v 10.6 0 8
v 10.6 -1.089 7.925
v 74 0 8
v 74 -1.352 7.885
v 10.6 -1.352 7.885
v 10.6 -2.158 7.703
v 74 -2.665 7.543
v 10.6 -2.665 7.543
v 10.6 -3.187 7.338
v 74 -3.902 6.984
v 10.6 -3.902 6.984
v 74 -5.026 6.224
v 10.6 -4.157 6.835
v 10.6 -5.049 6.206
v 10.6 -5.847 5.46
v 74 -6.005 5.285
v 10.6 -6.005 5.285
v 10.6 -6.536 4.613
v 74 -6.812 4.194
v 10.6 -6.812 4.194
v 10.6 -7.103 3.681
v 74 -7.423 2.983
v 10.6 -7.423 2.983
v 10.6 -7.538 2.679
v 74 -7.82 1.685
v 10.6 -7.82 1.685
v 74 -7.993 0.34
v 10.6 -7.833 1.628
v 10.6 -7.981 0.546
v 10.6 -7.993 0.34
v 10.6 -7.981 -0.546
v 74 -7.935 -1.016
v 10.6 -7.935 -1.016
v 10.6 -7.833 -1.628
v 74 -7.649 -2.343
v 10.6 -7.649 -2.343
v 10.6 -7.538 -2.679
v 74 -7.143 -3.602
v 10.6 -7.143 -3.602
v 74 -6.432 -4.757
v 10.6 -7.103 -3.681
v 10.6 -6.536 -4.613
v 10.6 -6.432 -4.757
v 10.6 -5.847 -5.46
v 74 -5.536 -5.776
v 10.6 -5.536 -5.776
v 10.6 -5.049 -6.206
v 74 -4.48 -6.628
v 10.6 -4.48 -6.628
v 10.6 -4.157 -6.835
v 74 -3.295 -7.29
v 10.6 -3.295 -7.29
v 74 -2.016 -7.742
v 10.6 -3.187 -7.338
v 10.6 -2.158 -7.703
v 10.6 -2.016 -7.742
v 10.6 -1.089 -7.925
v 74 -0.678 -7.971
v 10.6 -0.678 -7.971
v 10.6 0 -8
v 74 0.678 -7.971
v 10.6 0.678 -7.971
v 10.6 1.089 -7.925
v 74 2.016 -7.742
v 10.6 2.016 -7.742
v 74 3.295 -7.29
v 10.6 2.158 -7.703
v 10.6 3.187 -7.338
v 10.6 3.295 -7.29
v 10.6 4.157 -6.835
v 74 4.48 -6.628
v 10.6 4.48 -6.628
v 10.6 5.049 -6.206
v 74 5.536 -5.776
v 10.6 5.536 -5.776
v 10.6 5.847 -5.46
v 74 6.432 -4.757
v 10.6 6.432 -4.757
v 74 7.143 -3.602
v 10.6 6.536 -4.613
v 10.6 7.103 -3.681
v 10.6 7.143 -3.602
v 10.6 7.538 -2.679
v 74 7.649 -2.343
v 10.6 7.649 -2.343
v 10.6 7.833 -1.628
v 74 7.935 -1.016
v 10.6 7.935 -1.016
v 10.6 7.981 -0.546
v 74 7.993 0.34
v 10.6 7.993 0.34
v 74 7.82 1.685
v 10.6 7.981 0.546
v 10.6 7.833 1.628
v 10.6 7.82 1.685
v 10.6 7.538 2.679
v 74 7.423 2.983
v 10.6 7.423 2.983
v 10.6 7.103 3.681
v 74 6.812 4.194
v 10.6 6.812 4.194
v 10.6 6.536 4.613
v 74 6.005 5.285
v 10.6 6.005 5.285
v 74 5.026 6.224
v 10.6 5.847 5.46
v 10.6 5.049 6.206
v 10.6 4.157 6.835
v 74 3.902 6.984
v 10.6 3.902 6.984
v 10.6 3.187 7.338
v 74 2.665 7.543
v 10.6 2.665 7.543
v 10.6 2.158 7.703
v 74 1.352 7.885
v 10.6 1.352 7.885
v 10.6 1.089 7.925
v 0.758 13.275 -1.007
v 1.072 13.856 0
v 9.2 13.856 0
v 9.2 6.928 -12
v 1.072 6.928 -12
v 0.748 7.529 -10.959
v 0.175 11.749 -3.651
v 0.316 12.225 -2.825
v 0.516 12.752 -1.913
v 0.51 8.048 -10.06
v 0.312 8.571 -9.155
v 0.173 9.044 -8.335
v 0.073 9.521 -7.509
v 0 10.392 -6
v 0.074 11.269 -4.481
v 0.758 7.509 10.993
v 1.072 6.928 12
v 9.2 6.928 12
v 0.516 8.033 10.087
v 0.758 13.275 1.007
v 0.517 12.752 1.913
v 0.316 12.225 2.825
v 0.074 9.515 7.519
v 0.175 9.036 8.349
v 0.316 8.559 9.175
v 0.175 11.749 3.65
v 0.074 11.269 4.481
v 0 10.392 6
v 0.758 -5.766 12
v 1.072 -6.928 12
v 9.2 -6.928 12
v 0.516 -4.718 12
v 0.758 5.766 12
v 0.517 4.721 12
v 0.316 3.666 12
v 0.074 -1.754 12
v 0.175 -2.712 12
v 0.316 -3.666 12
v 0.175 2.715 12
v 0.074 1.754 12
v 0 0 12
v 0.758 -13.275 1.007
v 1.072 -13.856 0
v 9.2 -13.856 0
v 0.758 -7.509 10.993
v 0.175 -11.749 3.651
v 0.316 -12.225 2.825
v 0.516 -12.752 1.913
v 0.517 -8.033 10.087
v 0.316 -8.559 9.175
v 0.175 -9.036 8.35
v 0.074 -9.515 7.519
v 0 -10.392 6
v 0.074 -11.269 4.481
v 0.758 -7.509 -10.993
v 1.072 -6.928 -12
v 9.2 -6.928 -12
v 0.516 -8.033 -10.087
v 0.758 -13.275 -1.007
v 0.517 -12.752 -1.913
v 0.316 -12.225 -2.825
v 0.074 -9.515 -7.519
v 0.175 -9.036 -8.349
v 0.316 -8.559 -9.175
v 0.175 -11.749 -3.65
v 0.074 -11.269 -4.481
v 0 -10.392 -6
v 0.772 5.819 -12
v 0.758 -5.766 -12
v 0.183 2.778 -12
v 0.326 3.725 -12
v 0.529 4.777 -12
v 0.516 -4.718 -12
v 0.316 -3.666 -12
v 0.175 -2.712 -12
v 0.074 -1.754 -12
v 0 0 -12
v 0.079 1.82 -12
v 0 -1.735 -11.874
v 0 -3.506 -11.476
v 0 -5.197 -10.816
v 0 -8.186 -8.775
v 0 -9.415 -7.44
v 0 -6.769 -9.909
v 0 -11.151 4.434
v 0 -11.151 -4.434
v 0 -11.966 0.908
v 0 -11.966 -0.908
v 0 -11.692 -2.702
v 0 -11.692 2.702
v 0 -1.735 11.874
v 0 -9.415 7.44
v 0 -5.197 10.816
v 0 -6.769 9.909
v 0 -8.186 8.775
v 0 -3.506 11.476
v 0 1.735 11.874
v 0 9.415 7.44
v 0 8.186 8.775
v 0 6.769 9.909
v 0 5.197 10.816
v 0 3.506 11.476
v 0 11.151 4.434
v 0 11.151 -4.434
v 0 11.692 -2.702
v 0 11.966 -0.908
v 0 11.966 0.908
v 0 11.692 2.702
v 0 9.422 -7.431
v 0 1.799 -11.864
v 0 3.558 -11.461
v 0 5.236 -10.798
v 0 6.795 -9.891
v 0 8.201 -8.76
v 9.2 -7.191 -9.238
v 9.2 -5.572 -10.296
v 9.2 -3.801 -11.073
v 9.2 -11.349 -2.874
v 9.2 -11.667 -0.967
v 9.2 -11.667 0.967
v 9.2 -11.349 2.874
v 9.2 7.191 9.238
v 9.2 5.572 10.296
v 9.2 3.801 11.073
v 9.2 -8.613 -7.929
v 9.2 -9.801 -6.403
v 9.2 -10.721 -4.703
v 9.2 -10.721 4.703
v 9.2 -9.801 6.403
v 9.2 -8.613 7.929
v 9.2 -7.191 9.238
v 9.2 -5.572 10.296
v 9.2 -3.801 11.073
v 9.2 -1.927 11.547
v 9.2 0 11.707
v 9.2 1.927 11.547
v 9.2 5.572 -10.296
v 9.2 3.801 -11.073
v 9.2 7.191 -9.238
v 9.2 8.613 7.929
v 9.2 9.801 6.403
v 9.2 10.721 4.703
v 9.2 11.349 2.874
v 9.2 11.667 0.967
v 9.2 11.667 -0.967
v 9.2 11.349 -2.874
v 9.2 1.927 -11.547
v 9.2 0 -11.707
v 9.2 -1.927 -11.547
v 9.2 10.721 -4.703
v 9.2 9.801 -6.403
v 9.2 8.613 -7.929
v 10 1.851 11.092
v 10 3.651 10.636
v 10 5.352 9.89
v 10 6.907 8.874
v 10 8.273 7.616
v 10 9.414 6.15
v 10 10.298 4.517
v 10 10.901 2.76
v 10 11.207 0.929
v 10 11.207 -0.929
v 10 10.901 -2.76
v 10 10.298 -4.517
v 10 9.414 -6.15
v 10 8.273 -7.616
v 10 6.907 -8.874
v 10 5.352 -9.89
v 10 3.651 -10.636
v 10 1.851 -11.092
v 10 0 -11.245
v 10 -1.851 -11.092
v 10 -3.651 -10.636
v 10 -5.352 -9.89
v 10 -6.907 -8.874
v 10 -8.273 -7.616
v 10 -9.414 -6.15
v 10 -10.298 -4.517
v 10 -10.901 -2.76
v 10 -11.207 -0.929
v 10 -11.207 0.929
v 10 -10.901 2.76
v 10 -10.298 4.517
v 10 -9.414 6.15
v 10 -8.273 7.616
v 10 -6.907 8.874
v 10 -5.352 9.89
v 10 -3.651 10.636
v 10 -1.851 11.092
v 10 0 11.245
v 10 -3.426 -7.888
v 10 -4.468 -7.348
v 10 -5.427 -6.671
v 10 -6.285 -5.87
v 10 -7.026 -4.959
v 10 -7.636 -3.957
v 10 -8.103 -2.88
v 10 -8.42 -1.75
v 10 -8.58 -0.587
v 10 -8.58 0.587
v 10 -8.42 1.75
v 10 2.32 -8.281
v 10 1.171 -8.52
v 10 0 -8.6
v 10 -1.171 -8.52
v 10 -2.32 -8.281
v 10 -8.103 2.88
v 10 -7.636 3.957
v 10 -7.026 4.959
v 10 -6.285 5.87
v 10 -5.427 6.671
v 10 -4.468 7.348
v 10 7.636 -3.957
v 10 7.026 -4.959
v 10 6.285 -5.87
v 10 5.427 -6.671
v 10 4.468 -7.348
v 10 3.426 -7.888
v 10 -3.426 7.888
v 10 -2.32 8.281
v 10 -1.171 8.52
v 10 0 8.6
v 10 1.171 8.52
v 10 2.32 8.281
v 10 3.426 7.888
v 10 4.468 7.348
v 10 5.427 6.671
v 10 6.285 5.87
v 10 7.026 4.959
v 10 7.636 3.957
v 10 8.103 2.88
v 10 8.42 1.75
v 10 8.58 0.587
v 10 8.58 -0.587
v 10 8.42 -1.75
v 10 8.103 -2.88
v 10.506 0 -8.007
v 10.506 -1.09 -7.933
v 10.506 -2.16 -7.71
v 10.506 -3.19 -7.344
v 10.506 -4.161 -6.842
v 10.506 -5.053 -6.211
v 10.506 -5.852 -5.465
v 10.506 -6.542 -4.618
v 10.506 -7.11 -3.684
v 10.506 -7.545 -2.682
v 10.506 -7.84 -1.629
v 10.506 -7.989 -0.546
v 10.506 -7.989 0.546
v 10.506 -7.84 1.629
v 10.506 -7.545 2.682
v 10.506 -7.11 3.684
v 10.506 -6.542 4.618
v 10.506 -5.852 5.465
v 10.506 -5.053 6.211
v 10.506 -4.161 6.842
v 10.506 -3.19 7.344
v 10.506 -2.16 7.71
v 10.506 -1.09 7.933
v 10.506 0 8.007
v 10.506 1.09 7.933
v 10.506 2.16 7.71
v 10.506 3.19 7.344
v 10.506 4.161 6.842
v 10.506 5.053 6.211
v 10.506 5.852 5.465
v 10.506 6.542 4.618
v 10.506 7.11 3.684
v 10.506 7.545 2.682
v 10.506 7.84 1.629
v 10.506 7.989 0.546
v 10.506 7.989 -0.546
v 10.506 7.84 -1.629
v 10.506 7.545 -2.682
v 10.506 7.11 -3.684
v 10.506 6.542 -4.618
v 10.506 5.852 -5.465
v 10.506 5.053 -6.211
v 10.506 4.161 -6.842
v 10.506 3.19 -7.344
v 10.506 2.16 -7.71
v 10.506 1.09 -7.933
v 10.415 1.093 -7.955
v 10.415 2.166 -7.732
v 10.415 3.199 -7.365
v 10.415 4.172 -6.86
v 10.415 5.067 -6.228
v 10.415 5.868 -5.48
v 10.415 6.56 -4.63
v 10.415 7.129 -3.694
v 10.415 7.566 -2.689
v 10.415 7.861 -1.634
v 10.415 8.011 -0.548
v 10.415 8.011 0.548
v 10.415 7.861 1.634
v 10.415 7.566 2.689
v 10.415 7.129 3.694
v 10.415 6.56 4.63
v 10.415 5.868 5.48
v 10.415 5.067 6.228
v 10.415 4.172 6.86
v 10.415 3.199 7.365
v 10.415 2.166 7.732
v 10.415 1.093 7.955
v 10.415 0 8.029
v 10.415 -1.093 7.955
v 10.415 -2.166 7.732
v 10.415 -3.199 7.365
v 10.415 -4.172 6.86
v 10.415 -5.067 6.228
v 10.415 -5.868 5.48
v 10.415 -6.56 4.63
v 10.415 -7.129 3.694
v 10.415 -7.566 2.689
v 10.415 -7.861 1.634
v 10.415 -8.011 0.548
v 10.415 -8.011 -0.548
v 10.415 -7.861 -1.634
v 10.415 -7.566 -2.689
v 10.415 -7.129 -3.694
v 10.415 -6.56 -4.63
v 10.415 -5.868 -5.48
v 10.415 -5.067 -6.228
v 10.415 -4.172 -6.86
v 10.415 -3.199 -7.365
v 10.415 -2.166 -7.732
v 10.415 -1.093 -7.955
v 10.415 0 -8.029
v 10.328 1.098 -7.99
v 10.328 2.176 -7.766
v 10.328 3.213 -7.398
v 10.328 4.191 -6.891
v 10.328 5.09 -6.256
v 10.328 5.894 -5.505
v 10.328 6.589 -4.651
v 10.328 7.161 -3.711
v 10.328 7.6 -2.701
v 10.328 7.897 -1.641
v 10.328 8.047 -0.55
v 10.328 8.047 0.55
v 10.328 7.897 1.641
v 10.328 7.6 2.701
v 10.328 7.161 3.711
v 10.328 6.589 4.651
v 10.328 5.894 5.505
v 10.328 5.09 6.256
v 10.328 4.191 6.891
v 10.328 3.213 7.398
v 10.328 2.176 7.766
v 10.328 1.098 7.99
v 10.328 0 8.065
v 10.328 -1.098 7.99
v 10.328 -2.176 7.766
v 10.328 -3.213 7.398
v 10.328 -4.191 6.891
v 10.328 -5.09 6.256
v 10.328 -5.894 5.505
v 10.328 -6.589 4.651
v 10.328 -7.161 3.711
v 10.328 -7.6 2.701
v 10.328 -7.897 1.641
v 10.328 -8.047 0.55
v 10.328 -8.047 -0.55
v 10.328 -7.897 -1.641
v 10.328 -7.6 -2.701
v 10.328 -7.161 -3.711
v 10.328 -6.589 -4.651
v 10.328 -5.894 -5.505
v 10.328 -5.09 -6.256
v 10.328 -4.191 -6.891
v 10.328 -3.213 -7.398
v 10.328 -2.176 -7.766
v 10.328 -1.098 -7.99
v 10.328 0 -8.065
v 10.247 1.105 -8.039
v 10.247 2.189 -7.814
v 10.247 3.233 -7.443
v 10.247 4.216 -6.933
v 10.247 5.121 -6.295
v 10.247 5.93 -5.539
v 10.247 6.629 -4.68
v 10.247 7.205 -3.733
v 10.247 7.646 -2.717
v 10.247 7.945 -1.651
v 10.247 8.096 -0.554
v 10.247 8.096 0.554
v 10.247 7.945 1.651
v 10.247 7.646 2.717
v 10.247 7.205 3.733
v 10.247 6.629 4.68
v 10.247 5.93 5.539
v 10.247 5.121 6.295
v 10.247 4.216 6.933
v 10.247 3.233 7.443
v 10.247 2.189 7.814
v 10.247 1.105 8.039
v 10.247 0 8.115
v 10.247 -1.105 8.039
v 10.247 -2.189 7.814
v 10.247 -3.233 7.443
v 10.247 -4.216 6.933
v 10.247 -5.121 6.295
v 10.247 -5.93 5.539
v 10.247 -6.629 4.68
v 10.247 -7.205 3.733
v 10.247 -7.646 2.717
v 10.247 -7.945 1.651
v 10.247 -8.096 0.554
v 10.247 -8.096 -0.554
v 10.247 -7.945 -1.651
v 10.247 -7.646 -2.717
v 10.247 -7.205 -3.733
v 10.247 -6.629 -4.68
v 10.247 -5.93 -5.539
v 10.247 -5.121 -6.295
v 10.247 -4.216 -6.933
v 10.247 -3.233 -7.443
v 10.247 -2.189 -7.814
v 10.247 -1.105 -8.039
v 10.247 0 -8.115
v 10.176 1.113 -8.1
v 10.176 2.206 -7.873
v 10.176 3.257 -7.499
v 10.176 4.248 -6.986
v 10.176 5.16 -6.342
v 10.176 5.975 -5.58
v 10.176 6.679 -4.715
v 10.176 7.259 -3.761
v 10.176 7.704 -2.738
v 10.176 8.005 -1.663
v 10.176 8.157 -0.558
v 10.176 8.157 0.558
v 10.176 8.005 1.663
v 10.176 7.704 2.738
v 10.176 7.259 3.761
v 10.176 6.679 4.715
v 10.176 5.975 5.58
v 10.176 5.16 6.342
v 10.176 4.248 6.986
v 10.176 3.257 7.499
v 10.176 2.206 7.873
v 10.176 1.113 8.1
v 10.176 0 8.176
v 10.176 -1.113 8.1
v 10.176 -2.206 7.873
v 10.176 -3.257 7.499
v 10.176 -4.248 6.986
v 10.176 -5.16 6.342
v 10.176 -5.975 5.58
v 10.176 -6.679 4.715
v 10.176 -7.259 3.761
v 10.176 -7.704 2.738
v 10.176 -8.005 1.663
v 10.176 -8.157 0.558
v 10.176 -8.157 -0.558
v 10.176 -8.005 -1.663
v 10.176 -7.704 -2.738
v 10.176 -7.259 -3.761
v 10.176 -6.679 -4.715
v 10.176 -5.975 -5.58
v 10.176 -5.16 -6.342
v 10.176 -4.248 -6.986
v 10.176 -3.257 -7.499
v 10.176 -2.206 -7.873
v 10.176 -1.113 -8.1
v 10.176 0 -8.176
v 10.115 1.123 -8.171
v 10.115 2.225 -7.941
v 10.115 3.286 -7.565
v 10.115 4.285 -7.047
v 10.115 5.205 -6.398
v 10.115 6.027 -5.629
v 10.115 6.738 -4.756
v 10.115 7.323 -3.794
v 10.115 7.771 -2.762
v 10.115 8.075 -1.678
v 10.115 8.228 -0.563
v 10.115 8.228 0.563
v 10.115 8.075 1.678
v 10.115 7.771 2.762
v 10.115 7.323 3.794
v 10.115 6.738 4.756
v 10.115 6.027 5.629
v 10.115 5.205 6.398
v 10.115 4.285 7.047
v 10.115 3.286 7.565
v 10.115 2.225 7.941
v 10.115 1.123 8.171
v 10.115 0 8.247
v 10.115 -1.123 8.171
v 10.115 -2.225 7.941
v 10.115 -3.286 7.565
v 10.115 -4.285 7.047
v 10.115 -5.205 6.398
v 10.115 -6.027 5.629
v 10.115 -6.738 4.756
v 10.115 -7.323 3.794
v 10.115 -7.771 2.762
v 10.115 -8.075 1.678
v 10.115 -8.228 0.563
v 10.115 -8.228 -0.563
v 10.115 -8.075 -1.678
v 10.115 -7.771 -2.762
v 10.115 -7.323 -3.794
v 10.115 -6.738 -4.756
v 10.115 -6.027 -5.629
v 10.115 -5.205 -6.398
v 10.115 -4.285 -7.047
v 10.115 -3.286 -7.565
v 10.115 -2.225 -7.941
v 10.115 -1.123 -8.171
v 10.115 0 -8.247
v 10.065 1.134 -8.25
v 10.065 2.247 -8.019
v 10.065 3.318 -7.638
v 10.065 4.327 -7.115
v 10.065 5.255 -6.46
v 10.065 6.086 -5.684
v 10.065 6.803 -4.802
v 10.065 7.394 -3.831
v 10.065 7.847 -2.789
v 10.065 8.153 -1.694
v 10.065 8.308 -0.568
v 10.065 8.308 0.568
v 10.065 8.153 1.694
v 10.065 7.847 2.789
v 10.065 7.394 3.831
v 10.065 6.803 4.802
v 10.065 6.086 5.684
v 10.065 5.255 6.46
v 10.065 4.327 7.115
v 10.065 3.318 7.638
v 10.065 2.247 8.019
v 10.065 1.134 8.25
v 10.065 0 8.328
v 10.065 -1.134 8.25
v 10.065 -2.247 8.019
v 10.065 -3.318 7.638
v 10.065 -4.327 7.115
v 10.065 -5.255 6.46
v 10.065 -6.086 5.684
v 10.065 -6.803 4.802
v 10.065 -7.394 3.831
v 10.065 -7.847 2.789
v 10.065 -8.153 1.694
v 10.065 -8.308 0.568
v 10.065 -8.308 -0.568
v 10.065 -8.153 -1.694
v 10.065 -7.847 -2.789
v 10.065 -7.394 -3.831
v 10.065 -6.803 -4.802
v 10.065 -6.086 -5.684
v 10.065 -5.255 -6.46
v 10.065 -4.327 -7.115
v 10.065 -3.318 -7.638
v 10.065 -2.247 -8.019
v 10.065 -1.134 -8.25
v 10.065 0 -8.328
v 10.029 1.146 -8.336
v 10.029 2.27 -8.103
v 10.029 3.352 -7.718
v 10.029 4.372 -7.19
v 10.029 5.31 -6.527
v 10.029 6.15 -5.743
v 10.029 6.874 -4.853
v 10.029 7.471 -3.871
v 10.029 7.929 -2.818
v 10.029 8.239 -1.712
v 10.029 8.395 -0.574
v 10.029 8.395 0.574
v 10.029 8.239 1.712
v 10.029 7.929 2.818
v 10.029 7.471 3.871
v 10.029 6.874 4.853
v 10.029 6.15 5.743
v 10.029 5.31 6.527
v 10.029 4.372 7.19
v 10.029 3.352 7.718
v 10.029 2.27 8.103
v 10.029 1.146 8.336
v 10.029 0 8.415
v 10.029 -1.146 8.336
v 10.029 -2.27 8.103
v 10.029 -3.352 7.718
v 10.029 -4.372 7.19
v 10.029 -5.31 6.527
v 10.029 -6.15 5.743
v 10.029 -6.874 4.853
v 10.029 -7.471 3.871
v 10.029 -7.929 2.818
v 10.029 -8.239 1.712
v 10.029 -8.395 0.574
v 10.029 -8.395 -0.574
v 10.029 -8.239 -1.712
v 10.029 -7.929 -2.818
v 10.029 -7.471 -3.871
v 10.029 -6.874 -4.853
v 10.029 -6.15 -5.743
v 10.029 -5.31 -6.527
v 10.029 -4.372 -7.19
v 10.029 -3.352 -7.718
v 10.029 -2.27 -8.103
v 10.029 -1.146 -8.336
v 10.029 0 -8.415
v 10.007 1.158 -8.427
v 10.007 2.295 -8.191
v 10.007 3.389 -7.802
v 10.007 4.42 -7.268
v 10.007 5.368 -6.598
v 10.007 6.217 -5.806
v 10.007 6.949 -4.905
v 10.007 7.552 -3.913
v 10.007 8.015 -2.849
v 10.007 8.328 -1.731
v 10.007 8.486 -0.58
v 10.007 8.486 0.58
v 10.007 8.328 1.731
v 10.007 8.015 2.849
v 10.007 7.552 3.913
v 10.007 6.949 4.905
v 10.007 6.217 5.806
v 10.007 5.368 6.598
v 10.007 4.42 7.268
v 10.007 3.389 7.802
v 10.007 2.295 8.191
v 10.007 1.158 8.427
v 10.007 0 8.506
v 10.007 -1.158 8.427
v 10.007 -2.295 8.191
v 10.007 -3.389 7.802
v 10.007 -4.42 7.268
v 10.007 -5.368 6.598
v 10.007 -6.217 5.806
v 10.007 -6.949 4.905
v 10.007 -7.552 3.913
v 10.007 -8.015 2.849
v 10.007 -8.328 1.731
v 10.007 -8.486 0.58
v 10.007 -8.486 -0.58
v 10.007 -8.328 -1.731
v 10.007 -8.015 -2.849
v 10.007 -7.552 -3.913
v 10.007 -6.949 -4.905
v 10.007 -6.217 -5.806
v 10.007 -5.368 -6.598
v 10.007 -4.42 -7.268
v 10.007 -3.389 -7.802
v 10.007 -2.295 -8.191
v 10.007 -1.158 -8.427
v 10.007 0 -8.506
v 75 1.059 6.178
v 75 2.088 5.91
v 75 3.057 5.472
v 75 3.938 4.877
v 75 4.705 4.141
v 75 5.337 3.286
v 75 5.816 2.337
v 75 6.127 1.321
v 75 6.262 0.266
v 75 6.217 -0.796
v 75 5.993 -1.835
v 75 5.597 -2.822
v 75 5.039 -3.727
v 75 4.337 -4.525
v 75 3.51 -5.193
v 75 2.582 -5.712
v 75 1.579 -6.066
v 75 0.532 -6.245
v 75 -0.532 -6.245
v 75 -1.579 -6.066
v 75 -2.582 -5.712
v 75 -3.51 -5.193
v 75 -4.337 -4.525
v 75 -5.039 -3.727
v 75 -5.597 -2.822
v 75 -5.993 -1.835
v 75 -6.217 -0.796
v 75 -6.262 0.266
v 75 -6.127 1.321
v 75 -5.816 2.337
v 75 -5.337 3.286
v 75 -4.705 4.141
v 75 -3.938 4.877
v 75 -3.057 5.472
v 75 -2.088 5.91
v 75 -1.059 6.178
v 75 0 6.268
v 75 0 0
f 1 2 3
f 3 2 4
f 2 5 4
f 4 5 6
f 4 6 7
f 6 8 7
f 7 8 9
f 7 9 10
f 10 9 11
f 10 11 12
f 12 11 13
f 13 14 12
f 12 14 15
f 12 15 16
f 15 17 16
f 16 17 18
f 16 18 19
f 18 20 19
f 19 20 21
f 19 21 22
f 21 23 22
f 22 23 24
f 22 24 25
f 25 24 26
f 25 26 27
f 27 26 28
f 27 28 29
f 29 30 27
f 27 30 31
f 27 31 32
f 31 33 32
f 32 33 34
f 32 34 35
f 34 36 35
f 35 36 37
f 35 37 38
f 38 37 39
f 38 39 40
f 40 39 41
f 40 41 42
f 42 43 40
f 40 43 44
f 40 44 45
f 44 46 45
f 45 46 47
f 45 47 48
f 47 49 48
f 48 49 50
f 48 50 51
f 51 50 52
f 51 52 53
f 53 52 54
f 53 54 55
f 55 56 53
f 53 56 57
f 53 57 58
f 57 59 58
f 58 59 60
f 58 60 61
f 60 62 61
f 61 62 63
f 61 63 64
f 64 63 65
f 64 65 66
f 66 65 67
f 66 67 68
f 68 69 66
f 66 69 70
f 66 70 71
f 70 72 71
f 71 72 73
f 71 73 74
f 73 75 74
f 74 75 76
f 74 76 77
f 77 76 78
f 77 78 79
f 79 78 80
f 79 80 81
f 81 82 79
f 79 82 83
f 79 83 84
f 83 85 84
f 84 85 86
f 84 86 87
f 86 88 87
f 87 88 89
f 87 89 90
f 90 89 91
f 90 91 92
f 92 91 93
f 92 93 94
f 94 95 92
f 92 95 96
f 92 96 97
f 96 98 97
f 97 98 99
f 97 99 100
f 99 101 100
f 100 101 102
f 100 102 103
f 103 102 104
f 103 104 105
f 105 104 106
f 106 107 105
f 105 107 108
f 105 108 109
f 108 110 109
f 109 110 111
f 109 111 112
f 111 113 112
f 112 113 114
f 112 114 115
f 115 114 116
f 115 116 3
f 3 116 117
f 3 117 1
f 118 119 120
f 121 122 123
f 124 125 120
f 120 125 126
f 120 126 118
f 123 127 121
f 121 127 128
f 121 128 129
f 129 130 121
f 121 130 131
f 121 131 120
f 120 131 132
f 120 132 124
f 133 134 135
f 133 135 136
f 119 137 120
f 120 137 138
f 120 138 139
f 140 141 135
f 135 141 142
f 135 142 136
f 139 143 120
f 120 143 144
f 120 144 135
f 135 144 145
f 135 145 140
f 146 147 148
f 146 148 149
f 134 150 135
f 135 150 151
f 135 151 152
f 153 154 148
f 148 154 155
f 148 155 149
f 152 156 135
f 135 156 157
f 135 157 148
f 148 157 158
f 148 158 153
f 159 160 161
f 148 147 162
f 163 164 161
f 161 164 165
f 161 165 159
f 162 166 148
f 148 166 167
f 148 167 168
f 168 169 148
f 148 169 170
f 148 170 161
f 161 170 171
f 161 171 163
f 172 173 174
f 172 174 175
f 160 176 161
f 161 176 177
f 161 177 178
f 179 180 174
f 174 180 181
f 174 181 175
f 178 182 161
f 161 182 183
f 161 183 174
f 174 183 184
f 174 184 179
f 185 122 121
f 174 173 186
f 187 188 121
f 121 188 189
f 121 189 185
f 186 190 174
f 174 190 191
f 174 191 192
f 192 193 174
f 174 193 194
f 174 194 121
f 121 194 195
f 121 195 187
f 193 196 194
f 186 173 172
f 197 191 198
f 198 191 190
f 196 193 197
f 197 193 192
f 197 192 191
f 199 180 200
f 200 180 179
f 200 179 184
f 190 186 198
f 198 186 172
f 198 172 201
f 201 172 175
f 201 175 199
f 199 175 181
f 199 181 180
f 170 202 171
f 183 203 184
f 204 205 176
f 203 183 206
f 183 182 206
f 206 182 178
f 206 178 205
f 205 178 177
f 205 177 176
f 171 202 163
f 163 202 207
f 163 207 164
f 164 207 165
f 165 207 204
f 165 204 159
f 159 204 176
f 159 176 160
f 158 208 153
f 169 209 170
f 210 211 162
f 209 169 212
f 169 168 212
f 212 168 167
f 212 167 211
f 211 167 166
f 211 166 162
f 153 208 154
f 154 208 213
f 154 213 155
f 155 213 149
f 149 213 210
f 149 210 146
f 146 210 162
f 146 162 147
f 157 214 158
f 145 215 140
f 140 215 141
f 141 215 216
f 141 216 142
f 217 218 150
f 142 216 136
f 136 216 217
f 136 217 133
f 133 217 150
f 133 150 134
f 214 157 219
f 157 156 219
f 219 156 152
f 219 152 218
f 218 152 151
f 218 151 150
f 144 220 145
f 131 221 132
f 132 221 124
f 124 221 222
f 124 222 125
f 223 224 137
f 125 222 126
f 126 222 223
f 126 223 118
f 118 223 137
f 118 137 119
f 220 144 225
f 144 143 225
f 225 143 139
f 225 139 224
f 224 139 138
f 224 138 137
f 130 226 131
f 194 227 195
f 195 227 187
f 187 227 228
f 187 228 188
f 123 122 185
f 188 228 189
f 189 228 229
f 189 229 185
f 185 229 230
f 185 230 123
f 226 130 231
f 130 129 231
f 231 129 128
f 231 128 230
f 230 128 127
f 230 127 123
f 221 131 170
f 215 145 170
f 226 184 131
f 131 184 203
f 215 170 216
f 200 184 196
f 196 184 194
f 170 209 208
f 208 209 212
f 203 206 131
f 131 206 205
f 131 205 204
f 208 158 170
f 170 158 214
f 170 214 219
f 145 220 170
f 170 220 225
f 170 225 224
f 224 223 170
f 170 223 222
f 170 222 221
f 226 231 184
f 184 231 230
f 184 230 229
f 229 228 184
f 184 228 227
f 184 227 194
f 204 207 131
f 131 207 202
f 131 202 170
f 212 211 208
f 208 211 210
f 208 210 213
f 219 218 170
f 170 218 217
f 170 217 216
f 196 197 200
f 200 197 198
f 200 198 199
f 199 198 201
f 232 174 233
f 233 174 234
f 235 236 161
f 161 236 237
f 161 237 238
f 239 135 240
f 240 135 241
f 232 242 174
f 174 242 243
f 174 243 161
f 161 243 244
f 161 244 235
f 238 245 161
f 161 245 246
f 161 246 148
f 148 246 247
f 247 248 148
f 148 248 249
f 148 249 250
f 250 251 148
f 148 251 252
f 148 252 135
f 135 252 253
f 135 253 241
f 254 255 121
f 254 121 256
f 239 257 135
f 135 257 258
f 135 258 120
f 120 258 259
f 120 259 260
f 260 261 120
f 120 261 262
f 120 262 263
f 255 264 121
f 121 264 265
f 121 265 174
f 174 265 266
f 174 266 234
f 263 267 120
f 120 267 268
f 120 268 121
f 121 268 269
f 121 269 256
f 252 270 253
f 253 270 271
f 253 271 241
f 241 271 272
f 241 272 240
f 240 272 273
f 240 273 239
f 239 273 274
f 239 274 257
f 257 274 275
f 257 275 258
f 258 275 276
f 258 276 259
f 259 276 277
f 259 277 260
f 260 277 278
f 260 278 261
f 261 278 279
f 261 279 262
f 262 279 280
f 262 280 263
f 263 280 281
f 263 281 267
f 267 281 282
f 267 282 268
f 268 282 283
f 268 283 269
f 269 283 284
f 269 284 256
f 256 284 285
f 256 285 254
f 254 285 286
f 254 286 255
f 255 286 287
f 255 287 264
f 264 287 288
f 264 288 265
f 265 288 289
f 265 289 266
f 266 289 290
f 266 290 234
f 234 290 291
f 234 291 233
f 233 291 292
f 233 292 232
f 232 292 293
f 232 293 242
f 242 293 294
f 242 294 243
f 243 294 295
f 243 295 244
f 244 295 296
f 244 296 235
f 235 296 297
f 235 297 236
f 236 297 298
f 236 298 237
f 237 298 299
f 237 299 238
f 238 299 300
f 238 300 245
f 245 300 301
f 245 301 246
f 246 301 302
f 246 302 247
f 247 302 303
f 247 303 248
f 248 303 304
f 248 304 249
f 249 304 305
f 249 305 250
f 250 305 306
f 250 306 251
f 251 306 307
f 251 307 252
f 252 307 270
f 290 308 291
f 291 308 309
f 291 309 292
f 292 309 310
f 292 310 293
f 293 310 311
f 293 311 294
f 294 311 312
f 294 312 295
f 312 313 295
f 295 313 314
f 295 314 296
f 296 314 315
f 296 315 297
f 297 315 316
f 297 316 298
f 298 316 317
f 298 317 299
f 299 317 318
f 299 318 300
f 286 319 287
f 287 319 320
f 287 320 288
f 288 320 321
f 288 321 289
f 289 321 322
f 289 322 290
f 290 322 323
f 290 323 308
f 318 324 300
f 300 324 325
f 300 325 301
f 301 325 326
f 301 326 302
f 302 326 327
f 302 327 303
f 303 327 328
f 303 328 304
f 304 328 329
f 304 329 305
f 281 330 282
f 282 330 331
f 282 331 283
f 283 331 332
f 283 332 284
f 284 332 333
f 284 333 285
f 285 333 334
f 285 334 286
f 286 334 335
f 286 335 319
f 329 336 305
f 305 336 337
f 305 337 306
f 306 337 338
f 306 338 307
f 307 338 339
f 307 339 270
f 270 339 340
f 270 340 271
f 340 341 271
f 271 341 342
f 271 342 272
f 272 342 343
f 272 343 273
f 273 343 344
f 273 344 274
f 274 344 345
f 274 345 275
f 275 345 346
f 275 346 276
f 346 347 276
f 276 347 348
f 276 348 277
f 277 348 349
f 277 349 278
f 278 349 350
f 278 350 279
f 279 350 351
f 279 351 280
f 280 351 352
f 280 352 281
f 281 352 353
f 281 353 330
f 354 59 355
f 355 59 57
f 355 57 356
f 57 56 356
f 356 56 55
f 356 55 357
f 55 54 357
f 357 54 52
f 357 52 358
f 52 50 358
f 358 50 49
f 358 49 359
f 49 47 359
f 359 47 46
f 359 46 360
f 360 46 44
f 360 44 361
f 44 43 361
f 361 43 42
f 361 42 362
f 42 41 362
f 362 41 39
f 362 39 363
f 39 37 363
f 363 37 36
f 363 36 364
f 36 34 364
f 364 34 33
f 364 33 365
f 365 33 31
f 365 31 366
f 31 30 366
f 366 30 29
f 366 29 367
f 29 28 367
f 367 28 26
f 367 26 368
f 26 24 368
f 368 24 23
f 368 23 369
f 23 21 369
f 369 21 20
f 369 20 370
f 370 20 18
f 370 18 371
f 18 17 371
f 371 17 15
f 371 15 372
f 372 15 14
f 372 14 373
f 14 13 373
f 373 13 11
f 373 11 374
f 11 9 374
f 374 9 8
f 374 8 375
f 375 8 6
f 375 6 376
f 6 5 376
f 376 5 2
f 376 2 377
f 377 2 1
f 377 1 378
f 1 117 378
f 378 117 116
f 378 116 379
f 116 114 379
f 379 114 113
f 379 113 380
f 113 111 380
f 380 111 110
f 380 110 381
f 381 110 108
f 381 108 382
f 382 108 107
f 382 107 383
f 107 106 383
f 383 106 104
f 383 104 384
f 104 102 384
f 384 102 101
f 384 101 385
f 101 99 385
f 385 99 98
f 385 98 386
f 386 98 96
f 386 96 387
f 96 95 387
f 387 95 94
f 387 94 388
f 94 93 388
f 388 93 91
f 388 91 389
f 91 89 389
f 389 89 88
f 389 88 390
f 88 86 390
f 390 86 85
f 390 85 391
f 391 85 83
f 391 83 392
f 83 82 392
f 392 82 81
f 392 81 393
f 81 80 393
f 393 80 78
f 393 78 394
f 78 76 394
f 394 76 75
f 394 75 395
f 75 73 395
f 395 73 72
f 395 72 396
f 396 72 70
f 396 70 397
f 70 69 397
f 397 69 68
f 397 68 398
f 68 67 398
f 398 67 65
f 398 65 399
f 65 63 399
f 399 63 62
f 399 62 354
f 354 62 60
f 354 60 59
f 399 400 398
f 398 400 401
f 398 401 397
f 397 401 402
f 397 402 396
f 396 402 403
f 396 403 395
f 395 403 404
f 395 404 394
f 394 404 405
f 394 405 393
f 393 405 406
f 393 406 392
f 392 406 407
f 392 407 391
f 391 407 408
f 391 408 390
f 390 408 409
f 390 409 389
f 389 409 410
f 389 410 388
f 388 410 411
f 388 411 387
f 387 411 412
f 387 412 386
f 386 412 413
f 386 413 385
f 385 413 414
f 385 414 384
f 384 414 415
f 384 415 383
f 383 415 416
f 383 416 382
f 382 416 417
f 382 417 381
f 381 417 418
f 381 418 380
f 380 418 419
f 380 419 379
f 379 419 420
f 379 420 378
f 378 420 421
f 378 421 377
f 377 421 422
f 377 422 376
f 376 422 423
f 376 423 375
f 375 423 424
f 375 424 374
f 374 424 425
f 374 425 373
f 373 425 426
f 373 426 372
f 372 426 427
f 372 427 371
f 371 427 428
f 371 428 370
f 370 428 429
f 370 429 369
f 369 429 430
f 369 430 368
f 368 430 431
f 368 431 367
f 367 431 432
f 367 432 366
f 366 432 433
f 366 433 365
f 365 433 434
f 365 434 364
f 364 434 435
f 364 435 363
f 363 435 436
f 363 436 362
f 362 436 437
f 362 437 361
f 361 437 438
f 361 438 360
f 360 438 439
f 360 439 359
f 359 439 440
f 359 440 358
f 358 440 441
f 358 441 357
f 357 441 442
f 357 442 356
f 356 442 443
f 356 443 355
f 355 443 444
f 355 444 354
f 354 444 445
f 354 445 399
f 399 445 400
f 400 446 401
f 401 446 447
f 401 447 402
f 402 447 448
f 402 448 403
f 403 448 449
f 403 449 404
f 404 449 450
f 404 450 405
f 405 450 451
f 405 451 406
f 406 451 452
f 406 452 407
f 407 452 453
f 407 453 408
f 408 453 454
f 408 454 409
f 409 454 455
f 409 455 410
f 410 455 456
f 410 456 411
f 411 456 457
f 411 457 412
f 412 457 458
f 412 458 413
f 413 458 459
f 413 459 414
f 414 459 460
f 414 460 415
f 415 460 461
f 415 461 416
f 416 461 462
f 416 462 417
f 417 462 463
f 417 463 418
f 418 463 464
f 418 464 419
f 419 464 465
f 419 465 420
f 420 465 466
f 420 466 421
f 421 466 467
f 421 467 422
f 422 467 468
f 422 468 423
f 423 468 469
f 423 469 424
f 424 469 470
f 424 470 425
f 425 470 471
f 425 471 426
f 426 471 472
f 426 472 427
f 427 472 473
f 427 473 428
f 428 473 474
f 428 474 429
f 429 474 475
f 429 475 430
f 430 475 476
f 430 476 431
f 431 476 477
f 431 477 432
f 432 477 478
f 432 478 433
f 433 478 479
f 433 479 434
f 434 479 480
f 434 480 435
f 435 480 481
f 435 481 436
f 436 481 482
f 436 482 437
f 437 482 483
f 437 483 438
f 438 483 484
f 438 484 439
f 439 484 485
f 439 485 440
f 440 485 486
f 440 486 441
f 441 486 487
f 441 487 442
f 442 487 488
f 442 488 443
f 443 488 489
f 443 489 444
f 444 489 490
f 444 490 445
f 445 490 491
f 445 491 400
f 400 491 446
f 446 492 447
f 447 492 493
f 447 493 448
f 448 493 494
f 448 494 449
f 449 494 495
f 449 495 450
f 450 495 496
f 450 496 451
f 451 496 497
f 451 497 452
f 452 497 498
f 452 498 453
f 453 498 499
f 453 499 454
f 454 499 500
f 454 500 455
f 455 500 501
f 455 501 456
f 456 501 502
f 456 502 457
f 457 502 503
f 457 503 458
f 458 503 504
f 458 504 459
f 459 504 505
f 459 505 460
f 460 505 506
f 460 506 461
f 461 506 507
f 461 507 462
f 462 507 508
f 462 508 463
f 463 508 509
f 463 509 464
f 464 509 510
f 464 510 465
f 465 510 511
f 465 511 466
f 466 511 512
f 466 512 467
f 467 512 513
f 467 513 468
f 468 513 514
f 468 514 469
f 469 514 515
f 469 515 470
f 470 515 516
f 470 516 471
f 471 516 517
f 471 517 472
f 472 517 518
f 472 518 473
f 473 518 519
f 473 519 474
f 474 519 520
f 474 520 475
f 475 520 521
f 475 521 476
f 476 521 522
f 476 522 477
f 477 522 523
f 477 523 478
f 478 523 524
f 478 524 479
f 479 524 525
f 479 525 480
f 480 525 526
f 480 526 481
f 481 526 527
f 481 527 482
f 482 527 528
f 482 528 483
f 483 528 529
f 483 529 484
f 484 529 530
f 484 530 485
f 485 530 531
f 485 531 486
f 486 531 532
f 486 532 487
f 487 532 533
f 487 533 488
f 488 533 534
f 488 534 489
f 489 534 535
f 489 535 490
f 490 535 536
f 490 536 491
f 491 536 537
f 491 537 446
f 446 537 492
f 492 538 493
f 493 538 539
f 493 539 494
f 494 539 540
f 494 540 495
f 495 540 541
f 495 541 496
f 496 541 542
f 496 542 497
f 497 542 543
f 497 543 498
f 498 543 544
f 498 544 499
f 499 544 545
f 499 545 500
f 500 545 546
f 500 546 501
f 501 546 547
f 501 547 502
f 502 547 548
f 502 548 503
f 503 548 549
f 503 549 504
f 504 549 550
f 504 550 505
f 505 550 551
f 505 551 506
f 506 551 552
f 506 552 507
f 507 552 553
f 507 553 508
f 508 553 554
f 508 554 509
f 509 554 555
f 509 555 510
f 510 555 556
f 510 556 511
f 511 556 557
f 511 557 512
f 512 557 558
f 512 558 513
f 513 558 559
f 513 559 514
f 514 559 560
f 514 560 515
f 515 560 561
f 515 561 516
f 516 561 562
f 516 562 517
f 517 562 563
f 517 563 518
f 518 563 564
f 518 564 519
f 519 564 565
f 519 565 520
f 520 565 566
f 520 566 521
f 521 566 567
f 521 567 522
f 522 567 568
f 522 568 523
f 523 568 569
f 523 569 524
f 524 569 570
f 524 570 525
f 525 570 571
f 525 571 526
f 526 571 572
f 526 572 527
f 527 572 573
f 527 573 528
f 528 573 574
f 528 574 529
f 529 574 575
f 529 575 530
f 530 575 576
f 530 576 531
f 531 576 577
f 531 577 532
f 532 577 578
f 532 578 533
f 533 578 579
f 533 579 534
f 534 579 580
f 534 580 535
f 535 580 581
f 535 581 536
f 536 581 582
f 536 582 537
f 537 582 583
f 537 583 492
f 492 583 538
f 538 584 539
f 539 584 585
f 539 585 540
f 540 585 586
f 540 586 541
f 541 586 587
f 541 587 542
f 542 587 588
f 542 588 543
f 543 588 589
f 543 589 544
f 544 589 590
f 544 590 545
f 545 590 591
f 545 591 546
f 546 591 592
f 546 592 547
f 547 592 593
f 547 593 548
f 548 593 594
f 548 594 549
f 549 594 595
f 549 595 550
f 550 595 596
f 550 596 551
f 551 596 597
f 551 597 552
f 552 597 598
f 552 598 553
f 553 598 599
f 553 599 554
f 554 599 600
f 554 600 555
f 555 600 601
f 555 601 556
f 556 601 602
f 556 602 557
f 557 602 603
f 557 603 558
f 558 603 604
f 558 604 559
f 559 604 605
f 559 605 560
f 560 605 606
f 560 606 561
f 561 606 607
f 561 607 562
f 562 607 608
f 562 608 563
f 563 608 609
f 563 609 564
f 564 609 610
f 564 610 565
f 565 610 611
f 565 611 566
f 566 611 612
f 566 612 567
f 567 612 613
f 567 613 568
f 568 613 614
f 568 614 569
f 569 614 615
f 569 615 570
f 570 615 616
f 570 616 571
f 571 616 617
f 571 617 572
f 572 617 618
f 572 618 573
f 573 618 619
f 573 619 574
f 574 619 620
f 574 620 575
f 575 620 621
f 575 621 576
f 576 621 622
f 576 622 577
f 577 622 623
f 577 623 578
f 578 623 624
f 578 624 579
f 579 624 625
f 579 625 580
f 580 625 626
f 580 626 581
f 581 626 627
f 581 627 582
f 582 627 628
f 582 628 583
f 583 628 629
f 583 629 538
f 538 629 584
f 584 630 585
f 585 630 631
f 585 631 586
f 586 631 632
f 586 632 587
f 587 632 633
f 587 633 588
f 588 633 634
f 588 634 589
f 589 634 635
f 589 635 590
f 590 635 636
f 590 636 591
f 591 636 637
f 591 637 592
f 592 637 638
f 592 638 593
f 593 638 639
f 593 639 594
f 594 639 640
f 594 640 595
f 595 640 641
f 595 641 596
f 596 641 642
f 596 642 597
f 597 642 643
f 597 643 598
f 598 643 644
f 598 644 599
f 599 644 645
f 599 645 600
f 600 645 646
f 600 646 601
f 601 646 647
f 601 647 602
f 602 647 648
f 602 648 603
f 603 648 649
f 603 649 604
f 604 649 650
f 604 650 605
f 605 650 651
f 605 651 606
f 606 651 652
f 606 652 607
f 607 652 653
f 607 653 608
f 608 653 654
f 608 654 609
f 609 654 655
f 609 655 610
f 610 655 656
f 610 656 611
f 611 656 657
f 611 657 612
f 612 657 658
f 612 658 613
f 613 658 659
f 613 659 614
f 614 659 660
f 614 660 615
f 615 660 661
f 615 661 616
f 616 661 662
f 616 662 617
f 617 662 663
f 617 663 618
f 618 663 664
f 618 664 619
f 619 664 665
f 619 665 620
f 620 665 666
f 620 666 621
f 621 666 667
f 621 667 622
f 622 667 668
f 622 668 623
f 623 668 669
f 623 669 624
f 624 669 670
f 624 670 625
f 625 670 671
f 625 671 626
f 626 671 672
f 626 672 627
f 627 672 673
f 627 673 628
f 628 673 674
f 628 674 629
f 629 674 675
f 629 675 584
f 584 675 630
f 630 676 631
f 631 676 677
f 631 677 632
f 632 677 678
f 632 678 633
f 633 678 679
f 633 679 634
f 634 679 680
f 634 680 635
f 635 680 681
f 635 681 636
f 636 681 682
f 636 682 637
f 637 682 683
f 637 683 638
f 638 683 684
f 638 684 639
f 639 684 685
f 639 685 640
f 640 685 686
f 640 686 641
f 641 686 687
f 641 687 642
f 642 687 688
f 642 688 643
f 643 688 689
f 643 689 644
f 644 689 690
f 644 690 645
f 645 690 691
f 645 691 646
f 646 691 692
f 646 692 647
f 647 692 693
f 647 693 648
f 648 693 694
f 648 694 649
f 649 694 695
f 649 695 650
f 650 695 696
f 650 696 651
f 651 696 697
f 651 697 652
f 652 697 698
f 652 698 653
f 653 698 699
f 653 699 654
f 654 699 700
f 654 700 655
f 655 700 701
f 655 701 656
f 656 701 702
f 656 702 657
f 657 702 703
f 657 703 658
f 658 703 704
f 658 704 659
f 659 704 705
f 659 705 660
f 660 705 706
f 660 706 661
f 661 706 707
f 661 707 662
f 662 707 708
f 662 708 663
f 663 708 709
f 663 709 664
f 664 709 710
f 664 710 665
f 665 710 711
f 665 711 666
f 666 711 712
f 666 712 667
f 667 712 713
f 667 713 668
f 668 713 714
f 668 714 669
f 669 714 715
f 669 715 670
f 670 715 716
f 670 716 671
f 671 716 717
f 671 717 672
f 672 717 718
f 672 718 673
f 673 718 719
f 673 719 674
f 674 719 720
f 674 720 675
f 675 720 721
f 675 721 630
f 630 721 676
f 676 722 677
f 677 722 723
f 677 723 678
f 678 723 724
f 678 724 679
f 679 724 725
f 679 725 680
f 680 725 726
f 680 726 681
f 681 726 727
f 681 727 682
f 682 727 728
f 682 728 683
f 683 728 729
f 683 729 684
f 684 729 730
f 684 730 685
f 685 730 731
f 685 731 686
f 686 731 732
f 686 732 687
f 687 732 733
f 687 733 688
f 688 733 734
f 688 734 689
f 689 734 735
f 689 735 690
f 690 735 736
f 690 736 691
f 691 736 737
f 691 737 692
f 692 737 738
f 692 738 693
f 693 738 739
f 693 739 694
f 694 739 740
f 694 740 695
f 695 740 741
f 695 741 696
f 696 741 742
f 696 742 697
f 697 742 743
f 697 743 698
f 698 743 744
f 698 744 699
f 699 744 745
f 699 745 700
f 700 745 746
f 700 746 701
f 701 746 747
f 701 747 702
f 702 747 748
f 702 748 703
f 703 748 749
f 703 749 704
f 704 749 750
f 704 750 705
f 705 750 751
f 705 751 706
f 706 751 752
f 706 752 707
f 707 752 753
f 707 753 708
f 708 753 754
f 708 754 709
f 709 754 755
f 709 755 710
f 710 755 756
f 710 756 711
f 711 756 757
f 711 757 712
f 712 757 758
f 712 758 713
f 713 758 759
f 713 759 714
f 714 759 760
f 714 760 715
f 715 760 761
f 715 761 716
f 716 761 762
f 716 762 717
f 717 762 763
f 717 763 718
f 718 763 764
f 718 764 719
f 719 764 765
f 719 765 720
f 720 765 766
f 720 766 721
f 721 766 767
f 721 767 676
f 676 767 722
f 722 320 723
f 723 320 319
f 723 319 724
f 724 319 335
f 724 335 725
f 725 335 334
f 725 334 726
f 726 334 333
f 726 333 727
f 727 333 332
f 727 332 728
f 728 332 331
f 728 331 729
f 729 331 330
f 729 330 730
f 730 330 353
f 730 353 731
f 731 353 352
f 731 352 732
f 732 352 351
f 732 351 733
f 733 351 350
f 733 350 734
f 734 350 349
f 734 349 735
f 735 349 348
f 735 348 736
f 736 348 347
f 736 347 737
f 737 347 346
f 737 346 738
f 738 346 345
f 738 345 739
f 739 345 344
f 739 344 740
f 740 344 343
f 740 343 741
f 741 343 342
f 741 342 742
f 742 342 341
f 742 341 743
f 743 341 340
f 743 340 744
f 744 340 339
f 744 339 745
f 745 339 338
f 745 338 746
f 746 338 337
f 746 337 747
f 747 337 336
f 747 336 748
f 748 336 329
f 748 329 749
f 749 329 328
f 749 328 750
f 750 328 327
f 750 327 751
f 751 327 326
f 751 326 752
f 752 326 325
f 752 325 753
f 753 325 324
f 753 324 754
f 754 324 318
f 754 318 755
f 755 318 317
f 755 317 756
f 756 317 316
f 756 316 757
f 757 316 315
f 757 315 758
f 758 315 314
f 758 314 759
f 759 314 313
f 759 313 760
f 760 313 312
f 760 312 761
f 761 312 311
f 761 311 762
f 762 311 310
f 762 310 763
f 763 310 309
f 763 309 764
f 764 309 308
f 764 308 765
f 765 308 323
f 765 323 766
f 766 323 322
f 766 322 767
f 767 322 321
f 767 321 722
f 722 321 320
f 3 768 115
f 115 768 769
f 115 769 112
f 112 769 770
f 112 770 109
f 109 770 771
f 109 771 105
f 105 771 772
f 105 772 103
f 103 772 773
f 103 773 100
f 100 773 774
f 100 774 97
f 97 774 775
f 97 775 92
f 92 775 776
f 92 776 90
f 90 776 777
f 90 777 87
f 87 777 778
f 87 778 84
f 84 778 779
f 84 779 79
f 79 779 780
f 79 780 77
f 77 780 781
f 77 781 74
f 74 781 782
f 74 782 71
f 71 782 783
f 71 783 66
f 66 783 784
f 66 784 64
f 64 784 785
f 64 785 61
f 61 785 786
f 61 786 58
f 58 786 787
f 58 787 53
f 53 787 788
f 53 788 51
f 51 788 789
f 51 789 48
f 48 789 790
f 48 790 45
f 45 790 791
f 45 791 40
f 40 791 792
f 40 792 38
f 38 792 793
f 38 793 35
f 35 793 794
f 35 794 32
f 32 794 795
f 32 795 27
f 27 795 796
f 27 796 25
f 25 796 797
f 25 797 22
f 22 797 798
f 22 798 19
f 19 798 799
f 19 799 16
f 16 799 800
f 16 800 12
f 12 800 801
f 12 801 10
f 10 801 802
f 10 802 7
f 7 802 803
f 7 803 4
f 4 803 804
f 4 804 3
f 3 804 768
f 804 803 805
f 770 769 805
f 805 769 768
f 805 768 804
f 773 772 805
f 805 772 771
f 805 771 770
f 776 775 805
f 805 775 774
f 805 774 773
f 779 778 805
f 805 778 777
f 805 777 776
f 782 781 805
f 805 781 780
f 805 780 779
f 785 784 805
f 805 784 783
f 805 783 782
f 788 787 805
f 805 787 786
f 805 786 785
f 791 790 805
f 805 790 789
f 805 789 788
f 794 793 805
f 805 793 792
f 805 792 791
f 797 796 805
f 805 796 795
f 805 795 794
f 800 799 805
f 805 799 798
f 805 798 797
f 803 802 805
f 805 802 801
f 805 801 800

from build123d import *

# Parameters (mm, degrees)
EXTRUDE_382_DEPTH = 10
FILLET_1302_R     = 0.6


with BuildPart() as part:
    # 草图1 → Extrude 382 (new body)
    with BuildSketch(Plane(origin=(0, 0, 0), x_dir=(0, 0, -1), z_dir=(1, 0, 0))):
        Polygon((12, 6.92820323), (12, -6.92820323), (0, -13.856406461), (-12, -6.92820323), (-12, 6.92820323), (0, 13.856406461), align=None)
    extrude(amount=EXTRUDE_382_DEPTH)

    # 草图2 → 凸台-旋转1 (revolve)
    with BuildSketch(Plane.XY, mode=Mode.PRIVATE) as revolve_1_sk:
        Polygon((0, 0), (75, 0), (75, 6.268), (75, 8), (37, 8), (0, 8), align=None)
    revolve(revolve_1_sk.sketch.rotate(Axis((0, 0, 0), (1, 0, 0)), 90), axis=Axis((0, 0, 0), (1, 0, 0)))

    # 草图3 → 切除-旋转1 (revolve, cut)
    with BuildSketch(Plane.XY):
        Polygon((0, 12), (3.958548116, 18.856406461), (3.958548116, 23.856406461), (-10, 23.856406461), (-10, 12), align=None)
    revolve(axis=Axis((0, 0, 0), (1, 0, 0)), mode=Mode.SUBTRACT)

    # 草图4 → 切除-旋转3 (revolve, cut)
    with BuildSketch(Plane.XY, mode=Mode.PRIVATE) as cut_revolve_3_sk:
        Polygon((10, 11.245), (9.2, 11.706880215), (9.2, 13.856406461), (10, 13.856406461), align=None)
    revolve(cut_revolve_3_sk.sketch.rotate(Axis((0, 0, 0), (1, 0, 0)), 90), axis=Axis((0, 0, 0), (1, 0, 0)), mode=Mode.SUBTRACT)

    # Fillet 1302
    fillet_1302_edges = [part.edges().sort_by_distance(p)[0] for p in [
        (10, 0, -8),
    ]]
    fillet(fillet_1302_edges, radius=FILLET_1302_R)

    # 草图6 → 切除-旋转4 (revolve, cut)
    with BuildSketch(Plane.XY, mode=Mode.PRIVATE) as cut_revolve_4_sk:
        Polygon((74, 8), (76, 8), (75, 6.267949192), align=None)
    revolve(cut_revolve_4_sk.sketch.rotate(Axis((0, 0, 0), (1, 0, 0)), 90), axis=Axis((0, 0, 0), (1, 0, 0)), mode=Mode.SUBTRACT)


solid = part.part
